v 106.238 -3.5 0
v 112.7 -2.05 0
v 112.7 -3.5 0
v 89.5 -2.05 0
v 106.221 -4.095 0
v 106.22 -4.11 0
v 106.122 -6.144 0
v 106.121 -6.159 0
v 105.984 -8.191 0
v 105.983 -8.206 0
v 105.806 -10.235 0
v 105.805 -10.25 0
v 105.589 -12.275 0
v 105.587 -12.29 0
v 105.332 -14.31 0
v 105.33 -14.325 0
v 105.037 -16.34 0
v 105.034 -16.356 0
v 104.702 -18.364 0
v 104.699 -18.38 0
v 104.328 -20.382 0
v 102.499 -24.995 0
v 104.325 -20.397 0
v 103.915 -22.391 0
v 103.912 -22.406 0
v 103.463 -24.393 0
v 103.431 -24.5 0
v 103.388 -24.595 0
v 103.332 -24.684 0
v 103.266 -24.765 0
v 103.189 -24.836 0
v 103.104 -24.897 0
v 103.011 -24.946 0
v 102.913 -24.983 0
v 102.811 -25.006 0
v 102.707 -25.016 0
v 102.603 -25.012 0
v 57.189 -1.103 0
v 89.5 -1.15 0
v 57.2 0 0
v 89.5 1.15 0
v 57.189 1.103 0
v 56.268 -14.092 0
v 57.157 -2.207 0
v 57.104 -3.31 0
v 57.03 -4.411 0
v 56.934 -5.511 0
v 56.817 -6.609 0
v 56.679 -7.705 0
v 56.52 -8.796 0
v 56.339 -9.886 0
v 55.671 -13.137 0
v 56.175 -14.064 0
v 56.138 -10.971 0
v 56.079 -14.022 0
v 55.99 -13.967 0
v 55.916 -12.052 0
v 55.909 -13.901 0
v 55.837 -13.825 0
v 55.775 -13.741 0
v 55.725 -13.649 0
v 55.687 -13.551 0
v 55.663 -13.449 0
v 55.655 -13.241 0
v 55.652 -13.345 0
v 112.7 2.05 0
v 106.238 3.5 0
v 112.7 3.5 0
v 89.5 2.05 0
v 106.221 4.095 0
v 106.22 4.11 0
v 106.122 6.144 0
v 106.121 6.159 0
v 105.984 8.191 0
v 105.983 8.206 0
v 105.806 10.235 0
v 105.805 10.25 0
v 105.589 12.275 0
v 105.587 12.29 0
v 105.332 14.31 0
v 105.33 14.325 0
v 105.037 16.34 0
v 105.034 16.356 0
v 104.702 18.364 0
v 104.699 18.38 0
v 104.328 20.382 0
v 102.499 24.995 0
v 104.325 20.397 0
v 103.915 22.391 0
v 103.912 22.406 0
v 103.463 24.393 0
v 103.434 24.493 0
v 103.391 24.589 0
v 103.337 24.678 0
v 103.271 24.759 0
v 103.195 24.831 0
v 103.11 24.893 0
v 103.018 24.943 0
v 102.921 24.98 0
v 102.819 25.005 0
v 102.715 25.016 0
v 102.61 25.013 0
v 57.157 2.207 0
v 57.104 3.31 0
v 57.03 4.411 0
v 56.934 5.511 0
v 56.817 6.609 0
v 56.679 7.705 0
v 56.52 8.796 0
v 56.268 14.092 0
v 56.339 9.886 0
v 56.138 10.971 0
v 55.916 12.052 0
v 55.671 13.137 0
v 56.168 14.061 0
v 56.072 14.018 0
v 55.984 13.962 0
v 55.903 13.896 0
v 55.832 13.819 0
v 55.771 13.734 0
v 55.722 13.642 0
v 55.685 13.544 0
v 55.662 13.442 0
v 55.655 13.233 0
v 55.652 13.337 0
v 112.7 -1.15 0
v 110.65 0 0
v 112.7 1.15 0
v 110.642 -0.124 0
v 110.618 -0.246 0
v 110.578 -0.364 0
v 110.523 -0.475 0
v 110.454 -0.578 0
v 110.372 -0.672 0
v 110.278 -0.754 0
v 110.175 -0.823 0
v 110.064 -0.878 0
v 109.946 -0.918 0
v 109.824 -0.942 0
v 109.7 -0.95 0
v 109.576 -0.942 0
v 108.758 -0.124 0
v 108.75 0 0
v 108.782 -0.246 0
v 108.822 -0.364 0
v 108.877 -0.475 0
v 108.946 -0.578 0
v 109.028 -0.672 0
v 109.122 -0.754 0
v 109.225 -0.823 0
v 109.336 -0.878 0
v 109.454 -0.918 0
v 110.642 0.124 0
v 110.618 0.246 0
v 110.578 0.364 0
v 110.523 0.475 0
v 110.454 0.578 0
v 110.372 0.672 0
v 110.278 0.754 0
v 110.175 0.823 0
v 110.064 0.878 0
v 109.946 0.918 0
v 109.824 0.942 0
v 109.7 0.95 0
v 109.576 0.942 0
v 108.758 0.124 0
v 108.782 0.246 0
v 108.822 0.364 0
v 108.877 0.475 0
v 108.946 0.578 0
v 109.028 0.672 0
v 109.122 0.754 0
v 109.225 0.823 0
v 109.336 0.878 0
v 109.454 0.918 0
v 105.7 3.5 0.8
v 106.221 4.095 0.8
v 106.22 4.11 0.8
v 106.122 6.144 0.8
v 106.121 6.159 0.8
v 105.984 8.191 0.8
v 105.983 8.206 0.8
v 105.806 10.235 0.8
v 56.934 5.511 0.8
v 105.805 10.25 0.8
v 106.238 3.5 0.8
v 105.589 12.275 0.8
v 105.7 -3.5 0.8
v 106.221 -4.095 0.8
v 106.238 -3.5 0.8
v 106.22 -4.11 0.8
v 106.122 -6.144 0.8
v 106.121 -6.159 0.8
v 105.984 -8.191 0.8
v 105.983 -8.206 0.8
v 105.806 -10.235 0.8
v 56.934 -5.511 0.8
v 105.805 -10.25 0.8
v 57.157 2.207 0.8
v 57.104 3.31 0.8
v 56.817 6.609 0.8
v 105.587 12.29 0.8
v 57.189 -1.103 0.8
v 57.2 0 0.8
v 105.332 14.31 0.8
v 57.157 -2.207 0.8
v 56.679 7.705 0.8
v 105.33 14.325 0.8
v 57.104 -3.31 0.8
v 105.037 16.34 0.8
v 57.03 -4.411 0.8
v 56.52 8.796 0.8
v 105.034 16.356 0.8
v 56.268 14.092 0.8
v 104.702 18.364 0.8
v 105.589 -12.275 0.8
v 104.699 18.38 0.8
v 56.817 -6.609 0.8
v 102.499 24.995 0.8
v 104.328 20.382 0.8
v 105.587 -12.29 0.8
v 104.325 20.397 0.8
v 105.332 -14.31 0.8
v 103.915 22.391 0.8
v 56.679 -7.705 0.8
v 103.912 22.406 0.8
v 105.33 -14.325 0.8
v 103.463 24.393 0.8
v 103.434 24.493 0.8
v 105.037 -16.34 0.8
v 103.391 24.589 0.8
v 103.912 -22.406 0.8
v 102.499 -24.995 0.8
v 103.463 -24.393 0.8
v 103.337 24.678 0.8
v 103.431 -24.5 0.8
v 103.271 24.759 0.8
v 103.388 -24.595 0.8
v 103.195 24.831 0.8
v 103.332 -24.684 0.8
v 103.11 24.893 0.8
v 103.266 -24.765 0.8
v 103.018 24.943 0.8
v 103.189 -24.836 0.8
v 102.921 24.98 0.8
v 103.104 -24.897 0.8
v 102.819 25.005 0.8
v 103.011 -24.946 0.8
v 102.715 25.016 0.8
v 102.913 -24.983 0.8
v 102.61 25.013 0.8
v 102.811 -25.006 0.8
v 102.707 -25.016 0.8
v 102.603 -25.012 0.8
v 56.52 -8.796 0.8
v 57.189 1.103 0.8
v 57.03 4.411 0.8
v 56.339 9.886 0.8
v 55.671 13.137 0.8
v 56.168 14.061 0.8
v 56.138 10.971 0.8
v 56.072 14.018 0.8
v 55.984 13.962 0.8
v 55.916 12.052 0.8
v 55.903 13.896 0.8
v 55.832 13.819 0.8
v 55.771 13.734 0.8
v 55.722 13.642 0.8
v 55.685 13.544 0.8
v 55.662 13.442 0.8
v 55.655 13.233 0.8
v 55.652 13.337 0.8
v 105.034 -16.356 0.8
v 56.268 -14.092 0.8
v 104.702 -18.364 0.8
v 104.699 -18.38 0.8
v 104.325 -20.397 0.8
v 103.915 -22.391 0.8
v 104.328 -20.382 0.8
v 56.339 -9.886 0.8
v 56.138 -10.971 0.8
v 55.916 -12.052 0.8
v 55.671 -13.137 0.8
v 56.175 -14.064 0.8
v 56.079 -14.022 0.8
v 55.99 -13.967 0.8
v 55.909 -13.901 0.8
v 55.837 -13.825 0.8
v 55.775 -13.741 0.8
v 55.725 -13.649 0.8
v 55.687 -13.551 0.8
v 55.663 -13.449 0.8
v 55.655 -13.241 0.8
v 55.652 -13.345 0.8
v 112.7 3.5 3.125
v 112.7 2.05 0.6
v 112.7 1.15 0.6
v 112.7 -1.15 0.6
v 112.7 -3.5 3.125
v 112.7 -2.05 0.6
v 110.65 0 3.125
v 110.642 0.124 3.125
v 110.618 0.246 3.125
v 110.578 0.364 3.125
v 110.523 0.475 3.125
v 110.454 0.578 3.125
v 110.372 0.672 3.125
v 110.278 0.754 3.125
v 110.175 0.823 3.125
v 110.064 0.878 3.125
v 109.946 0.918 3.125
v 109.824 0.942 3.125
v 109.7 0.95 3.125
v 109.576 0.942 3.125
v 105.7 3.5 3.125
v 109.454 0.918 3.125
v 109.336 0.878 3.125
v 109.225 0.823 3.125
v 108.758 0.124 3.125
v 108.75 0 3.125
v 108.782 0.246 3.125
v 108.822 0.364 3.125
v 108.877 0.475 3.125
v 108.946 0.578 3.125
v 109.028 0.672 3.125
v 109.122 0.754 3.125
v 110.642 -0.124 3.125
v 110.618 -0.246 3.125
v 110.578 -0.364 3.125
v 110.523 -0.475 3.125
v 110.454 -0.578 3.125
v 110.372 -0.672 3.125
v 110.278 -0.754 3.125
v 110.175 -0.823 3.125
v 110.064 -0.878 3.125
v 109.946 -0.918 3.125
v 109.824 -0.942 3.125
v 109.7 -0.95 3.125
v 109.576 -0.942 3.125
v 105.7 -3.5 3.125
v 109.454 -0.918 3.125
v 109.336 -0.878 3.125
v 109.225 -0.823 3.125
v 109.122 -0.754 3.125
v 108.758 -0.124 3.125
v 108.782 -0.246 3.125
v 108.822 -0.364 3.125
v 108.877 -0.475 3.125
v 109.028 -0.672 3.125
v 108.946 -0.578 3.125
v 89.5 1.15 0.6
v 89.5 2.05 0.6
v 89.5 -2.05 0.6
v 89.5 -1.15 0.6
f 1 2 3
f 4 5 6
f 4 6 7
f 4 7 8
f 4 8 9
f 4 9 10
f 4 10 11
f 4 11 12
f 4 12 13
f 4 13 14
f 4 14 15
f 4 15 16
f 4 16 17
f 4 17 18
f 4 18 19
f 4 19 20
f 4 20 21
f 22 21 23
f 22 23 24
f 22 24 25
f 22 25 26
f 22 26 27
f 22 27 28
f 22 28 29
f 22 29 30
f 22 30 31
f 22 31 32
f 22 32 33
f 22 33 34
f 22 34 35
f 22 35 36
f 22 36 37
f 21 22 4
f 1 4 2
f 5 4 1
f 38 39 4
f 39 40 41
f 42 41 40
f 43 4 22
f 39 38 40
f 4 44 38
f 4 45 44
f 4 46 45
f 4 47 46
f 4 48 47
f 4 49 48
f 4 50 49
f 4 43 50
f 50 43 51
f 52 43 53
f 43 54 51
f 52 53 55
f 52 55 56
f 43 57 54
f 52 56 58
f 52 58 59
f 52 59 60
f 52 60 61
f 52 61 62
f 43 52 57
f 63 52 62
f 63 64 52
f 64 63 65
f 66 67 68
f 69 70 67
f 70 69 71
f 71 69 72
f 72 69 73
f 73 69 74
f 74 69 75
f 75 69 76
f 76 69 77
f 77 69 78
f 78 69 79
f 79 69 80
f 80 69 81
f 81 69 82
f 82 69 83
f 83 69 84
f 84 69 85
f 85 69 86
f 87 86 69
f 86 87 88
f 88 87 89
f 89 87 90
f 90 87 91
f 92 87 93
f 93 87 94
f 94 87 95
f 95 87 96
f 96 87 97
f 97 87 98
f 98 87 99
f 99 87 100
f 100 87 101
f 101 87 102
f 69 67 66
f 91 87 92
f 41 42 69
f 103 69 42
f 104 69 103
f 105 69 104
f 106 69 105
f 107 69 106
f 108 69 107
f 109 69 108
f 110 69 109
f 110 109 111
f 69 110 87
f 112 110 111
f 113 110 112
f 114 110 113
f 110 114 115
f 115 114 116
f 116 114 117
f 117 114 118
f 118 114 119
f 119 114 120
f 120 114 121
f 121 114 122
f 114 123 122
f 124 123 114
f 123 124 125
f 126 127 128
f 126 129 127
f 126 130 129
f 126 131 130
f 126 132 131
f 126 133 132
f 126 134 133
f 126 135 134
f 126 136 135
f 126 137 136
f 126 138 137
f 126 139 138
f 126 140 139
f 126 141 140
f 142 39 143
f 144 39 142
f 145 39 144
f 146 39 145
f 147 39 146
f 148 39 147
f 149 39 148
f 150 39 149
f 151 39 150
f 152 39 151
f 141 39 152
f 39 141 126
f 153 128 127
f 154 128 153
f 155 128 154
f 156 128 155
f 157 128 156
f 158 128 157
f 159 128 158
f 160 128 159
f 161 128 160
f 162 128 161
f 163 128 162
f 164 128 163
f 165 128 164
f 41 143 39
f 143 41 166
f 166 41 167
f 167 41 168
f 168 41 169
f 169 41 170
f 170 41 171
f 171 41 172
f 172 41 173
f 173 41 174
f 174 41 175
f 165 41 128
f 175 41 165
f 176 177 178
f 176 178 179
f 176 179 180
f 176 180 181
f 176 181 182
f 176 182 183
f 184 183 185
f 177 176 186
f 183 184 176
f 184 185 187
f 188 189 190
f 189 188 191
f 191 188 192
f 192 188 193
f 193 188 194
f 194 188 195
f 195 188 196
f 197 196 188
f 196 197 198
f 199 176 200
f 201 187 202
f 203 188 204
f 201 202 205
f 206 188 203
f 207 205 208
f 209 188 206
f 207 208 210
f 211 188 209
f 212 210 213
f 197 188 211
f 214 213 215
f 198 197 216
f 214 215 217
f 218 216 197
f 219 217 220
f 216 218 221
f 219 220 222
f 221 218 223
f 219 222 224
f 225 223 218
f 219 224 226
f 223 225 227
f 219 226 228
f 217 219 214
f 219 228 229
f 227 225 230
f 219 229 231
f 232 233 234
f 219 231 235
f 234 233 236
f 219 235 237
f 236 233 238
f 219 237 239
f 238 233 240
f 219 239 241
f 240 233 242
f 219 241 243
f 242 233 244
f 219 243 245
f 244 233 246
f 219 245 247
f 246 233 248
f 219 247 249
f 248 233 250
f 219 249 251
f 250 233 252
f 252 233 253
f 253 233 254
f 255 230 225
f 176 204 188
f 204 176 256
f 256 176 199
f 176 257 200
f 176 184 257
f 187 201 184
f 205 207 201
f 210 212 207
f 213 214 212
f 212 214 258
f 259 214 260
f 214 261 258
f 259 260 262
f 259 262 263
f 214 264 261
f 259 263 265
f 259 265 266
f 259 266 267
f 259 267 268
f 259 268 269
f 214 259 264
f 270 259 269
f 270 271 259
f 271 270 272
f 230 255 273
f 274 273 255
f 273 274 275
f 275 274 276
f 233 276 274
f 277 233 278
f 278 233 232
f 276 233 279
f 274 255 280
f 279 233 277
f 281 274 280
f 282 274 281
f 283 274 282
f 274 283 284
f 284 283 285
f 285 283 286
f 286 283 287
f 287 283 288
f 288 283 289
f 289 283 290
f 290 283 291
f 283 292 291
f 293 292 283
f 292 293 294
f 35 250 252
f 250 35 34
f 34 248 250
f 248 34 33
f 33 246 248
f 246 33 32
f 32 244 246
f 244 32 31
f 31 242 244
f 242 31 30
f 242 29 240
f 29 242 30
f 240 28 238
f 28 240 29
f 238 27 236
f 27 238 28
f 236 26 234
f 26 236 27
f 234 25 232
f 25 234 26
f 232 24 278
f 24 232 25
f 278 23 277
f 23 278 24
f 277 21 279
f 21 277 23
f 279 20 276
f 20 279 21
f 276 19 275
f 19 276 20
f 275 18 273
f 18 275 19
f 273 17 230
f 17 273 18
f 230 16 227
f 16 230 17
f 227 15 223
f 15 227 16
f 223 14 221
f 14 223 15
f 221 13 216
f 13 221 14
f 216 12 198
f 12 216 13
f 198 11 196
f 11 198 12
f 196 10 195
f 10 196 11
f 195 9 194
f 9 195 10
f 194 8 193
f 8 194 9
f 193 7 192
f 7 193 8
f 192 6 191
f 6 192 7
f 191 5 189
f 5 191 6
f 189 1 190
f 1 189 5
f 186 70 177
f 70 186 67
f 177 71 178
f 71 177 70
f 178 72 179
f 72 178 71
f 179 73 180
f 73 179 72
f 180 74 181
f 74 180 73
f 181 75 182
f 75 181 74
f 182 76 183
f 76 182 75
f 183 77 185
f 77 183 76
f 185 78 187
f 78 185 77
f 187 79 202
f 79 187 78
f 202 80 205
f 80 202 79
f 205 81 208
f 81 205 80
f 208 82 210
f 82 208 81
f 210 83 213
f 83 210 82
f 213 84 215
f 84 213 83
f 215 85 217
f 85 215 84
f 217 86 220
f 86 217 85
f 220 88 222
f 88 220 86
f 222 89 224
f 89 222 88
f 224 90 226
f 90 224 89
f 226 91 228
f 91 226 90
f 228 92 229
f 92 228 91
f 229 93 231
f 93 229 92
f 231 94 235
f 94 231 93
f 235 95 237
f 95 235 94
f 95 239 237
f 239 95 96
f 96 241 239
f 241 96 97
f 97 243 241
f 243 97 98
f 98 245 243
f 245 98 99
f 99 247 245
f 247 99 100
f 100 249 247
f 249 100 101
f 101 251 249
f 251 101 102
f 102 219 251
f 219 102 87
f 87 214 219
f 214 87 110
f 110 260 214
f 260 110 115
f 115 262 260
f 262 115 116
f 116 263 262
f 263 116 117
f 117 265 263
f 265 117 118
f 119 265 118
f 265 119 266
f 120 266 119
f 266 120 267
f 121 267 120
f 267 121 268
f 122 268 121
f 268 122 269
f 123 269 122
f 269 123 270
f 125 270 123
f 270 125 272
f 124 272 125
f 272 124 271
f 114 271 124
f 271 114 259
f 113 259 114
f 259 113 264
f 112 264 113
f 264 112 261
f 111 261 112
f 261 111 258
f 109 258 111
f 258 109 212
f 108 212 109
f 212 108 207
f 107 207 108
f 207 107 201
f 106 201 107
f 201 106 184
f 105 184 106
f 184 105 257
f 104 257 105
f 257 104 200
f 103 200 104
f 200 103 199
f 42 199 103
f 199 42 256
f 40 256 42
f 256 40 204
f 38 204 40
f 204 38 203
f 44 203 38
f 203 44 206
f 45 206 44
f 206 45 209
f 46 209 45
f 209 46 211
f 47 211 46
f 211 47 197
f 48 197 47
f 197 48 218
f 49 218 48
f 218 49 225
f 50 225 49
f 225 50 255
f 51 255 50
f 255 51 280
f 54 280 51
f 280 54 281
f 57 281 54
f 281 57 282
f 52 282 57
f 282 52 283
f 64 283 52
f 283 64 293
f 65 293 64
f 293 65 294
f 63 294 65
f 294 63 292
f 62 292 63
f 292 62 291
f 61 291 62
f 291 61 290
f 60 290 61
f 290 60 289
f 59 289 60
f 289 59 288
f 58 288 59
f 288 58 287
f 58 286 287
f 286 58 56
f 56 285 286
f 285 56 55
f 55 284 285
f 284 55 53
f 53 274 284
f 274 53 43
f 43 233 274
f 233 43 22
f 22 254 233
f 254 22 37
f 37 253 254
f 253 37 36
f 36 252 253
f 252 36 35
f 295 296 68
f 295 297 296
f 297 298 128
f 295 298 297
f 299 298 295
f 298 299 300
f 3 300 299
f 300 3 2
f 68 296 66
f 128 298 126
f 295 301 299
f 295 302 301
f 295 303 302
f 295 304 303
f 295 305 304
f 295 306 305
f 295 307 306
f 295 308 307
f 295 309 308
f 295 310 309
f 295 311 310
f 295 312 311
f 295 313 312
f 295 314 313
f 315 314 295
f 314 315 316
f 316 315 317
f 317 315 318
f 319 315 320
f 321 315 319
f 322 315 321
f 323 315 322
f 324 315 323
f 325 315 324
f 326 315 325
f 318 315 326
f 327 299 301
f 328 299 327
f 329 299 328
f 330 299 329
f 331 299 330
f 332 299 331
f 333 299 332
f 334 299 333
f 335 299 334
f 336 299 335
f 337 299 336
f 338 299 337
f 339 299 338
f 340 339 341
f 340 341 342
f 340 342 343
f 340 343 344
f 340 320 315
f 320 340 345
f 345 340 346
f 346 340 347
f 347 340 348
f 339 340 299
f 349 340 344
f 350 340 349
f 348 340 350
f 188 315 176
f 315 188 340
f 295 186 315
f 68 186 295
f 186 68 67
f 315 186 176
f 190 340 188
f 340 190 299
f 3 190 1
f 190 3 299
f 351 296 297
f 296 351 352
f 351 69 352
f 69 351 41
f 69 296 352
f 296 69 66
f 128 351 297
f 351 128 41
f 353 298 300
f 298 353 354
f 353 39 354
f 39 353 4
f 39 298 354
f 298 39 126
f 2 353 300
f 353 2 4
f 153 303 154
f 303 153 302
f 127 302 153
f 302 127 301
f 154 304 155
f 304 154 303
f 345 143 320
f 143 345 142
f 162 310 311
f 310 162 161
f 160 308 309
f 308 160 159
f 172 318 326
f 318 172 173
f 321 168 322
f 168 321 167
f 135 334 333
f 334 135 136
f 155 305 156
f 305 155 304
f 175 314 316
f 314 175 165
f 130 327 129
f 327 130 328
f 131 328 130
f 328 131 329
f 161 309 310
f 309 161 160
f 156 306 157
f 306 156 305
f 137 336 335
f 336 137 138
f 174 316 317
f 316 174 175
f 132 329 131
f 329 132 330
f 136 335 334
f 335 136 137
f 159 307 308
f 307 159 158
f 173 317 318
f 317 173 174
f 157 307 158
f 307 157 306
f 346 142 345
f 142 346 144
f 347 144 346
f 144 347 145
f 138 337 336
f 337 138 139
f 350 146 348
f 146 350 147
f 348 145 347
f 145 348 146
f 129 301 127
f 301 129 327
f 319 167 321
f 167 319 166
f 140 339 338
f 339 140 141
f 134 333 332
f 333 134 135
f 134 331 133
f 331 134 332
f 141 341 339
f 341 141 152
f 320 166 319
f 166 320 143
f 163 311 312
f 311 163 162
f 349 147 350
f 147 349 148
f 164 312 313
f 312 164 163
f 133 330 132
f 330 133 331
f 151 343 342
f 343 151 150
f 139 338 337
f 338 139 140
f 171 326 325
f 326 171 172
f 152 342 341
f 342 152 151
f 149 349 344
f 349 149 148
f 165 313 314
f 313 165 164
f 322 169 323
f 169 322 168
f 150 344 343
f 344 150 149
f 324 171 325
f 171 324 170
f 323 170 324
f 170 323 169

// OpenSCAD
// Gen-CP — bobbin LID (top flange + locating tab). Print x12, flange face DOWN on the bed.
// CA-glue onto the hub top BEFORE winding. Tab = lap joint into the stator tab pocket; 1.75 mm filament
// pin through pin hole + stator ledge, trim flush. Lead slots carry both leads flush.
include <parameters.scad>;
$fn = 48;
module sector_2d(r_in, r_out, ang) {
    polygon([
        for (a = [-ang/2 : ang/24 : ang/2]) [r_in*cos(a), r_in*sin(a)],
        for (a = [ang/2 : -ang/24 : -ang/2]) [r_out*cos(a), r_out*sin(a)]
    ]);
}
module footprint_2d() { offset(r=wall) sector_2d(coil_id_r, coil_od_r, span_deg); }
module hub_2d()       { offset(delta=-coil_core_inset) sector_2d(coil_id_r, coil_od_r, span_deg); }

difference() {
    union() {
        linear_extrude(flange_t) footprint_2d();
        translate([coil_od_r + 0.2, -tab_w/2, 0]) cube([tab_len, tab_w, tab_h]);
    }
    translate([coil_mount_r, 0, -0.1]) cylinder(d=pin_d, h=tab_h + 1);
    for (y = [lead_y, -lead_y])
        translate([coil_od_r - coil_core_inset - 0.5, y - lead_slot_w/2, -0.1])
            cube([coil_core_inset + tab_len + 2, lead_slot_w, lead_groove_d + 0.1]);
}
